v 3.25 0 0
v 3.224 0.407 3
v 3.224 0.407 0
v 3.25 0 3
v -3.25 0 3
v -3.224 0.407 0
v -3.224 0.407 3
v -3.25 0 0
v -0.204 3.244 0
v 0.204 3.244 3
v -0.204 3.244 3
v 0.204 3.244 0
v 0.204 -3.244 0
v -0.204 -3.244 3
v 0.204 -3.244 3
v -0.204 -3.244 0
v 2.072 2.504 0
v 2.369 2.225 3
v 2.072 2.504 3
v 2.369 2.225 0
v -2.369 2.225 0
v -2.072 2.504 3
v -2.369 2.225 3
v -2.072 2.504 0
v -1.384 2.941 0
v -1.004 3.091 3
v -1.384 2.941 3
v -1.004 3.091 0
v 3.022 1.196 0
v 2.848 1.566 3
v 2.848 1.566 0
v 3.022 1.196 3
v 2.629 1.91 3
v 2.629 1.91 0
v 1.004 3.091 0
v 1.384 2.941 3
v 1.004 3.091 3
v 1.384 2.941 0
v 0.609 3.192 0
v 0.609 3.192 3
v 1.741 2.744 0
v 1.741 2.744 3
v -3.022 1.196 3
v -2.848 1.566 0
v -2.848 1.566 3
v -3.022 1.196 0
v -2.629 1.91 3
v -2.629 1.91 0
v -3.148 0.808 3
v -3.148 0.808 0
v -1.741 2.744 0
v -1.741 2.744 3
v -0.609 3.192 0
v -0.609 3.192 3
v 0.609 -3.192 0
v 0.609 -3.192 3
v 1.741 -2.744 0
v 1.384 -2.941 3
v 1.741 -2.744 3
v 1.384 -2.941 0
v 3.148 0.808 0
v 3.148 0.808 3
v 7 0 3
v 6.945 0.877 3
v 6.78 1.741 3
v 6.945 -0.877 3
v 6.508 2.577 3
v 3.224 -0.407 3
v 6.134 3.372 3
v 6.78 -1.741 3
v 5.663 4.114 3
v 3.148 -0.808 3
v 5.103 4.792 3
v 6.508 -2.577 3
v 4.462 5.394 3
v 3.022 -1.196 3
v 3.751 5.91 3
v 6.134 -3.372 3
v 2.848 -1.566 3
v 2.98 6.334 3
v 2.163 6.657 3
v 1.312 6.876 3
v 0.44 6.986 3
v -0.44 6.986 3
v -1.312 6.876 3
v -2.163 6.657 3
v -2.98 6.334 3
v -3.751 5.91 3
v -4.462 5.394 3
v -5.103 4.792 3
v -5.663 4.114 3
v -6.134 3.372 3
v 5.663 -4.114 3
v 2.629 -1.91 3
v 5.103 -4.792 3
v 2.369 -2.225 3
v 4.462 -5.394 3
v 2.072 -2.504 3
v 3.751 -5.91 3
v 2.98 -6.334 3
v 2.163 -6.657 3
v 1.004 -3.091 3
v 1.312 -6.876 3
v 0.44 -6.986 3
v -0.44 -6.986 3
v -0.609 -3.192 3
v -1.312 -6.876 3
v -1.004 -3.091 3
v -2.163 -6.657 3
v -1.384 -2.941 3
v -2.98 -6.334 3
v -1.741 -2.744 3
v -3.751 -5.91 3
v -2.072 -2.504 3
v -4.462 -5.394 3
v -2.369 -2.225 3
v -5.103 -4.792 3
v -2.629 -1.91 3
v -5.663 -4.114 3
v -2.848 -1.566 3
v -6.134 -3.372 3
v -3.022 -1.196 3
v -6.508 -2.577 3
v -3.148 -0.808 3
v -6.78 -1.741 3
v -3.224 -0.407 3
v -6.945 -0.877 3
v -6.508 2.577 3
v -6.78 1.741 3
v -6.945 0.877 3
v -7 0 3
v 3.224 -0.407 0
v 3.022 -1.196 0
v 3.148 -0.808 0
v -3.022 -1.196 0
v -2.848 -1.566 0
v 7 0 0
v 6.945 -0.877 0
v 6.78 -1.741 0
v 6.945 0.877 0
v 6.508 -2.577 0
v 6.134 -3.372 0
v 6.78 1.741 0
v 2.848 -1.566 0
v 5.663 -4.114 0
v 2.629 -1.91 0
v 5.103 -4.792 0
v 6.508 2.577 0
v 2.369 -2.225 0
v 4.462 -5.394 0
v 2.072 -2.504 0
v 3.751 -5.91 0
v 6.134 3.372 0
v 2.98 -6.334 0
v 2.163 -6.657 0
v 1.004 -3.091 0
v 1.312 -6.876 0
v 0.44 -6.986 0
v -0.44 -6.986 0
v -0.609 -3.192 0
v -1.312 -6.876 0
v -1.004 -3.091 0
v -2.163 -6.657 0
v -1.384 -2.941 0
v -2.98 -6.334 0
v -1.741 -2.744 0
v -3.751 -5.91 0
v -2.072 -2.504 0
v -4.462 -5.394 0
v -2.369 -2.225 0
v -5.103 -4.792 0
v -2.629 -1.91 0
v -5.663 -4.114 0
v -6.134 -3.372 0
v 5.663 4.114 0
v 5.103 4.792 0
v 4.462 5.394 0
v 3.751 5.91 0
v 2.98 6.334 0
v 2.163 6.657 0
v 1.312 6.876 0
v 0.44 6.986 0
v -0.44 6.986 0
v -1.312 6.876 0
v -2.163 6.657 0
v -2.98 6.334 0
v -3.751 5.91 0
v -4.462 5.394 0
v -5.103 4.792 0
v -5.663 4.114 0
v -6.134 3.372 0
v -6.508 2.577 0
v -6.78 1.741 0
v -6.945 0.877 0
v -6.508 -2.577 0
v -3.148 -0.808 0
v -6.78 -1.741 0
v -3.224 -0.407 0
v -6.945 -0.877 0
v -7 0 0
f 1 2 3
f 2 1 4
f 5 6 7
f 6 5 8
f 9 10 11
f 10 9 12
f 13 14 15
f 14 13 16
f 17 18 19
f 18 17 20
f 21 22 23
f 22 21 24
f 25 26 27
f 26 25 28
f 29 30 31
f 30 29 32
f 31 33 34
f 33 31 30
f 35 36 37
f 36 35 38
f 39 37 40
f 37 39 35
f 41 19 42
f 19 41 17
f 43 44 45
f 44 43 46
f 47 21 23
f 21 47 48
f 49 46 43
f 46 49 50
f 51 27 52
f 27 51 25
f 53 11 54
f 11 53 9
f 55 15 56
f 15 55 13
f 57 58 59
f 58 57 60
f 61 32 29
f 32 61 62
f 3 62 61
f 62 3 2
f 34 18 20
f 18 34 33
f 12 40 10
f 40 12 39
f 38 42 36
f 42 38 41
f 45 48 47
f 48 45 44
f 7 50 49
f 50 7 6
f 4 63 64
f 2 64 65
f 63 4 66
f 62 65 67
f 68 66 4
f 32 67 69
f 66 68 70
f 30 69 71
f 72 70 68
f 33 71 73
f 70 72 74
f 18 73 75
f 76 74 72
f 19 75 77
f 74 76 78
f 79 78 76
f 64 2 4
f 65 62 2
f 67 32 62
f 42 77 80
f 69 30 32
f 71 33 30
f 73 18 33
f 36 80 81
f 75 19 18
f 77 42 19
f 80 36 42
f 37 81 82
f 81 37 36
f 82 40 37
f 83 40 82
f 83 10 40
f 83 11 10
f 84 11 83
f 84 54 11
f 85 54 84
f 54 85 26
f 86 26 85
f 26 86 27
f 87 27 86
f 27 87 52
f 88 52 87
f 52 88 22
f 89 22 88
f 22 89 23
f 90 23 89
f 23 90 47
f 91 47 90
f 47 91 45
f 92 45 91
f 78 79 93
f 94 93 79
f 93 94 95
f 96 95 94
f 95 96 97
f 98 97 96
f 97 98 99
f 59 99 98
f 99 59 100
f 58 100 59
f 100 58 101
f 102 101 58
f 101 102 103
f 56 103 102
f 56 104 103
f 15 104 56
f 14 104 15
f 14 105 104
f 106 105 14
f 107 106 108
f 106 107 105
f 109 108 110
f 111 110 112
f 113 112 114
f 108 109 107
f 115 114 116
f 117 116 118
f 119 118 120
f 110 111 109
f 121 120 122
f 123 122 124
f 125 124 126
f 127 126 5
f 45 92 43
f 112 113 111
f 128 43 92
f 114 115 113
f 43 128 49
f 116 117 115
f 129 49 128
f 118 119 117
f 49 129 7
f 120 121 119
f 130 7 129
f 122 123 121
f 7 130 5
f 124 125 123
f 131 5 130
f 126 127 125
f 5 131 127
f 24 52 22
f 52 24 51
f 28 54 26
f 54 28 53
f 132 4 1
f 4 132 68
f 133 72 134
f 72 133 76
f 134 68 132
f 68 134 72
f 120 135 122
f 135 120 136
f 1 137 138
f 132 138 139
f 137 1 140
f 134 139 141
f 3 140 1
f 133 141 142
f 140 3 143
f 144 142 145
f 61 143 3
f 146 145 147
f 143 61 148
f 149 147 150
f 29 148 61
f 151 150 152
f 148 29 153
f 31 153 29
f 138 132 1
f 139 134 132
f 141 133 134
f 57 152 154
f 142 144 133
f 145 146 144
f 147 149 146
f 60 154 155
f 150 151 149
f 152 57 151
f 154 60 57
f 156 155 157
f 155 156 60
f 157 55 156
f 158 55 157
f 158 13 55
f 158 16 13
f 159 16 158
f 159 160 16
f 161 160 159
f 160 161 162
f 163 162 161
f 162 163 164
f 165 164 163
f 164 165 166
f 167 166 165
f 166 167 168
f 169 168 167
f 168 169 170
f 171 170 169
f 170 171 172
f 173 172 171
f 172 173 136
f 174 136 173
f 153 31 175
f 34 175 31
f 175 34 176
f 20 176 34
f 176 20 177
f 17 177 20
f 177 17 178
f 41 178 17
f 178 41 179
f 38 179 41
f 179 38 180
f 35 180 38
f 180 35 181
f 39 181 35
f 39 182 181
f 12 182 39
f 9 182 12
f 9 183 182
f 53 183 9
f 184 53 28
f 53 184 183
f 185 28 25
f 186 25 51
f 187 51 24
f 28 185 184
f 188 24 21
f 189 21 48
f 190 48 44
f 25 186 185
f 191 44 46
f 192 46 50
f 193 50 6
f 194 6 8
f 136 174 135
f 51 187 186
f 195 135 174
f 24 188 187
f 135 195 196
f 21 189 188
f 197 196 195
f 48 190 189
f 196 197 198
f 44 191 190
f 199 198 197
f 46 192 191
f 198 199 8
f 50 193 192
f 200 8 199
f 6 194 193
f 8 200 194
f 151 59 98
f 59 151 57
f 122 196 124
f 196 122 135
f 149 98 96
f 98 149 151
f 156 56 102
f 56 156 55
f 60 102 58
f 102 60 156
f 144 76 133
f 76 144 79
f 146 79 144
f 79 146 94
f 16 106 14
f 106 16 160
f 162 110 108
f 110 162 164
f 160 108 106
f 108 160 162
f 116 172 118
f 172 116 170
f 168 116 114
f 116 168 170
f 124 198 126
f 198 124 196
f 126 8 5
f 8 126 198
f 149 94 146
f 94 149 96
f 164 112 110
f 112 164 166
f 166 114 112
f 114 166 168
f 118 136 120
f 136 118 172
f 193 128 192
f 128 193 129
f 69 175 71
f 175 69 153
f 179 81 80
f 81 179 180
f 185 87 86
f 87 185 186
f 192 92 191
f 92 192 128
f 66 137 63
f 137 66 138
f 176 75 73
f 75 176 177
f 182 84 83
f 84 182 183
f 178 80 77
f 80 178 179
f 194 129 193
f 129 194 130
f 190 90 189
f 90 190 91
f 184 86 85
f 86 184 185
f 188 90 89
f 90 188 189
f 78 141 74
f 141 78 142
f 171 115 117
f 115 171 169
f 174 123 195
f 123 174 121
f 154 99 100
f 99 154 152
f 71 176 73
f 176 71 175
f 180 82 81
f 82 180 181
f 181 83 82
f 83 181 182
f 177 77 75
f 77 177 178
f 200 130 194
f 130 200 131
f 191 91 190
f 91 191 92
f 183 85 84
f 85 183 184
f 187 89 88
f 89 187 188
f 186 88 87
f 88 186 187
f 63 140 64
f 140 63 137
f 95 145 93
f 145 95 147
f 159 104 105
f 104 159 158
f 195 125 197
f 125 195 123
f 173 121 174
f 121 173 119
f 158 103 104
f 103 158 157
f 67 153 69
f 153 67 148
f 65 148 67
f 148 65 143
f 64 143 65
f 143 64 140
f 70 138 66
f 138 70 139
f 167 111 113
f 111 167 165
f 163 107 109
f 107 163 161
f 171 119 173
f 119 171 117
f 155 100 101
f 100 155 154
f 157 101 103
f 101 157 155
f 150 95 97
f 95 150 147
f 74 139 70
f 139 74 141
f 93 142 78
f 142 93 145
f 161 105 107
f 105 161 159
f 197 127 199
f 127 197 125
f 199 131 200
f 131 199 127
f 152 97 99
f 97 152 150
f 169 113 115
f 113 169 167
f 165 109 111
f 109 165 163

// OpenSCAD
$fn = 50;


difference() {
	union() {
		cylinder(h = 3, r = 7.0000000000);
	}
	union() {
		translate(v = [0, 0, -100]) {
			cylinder(h = 200, r = 3.2500000000);
		}
	}
}
